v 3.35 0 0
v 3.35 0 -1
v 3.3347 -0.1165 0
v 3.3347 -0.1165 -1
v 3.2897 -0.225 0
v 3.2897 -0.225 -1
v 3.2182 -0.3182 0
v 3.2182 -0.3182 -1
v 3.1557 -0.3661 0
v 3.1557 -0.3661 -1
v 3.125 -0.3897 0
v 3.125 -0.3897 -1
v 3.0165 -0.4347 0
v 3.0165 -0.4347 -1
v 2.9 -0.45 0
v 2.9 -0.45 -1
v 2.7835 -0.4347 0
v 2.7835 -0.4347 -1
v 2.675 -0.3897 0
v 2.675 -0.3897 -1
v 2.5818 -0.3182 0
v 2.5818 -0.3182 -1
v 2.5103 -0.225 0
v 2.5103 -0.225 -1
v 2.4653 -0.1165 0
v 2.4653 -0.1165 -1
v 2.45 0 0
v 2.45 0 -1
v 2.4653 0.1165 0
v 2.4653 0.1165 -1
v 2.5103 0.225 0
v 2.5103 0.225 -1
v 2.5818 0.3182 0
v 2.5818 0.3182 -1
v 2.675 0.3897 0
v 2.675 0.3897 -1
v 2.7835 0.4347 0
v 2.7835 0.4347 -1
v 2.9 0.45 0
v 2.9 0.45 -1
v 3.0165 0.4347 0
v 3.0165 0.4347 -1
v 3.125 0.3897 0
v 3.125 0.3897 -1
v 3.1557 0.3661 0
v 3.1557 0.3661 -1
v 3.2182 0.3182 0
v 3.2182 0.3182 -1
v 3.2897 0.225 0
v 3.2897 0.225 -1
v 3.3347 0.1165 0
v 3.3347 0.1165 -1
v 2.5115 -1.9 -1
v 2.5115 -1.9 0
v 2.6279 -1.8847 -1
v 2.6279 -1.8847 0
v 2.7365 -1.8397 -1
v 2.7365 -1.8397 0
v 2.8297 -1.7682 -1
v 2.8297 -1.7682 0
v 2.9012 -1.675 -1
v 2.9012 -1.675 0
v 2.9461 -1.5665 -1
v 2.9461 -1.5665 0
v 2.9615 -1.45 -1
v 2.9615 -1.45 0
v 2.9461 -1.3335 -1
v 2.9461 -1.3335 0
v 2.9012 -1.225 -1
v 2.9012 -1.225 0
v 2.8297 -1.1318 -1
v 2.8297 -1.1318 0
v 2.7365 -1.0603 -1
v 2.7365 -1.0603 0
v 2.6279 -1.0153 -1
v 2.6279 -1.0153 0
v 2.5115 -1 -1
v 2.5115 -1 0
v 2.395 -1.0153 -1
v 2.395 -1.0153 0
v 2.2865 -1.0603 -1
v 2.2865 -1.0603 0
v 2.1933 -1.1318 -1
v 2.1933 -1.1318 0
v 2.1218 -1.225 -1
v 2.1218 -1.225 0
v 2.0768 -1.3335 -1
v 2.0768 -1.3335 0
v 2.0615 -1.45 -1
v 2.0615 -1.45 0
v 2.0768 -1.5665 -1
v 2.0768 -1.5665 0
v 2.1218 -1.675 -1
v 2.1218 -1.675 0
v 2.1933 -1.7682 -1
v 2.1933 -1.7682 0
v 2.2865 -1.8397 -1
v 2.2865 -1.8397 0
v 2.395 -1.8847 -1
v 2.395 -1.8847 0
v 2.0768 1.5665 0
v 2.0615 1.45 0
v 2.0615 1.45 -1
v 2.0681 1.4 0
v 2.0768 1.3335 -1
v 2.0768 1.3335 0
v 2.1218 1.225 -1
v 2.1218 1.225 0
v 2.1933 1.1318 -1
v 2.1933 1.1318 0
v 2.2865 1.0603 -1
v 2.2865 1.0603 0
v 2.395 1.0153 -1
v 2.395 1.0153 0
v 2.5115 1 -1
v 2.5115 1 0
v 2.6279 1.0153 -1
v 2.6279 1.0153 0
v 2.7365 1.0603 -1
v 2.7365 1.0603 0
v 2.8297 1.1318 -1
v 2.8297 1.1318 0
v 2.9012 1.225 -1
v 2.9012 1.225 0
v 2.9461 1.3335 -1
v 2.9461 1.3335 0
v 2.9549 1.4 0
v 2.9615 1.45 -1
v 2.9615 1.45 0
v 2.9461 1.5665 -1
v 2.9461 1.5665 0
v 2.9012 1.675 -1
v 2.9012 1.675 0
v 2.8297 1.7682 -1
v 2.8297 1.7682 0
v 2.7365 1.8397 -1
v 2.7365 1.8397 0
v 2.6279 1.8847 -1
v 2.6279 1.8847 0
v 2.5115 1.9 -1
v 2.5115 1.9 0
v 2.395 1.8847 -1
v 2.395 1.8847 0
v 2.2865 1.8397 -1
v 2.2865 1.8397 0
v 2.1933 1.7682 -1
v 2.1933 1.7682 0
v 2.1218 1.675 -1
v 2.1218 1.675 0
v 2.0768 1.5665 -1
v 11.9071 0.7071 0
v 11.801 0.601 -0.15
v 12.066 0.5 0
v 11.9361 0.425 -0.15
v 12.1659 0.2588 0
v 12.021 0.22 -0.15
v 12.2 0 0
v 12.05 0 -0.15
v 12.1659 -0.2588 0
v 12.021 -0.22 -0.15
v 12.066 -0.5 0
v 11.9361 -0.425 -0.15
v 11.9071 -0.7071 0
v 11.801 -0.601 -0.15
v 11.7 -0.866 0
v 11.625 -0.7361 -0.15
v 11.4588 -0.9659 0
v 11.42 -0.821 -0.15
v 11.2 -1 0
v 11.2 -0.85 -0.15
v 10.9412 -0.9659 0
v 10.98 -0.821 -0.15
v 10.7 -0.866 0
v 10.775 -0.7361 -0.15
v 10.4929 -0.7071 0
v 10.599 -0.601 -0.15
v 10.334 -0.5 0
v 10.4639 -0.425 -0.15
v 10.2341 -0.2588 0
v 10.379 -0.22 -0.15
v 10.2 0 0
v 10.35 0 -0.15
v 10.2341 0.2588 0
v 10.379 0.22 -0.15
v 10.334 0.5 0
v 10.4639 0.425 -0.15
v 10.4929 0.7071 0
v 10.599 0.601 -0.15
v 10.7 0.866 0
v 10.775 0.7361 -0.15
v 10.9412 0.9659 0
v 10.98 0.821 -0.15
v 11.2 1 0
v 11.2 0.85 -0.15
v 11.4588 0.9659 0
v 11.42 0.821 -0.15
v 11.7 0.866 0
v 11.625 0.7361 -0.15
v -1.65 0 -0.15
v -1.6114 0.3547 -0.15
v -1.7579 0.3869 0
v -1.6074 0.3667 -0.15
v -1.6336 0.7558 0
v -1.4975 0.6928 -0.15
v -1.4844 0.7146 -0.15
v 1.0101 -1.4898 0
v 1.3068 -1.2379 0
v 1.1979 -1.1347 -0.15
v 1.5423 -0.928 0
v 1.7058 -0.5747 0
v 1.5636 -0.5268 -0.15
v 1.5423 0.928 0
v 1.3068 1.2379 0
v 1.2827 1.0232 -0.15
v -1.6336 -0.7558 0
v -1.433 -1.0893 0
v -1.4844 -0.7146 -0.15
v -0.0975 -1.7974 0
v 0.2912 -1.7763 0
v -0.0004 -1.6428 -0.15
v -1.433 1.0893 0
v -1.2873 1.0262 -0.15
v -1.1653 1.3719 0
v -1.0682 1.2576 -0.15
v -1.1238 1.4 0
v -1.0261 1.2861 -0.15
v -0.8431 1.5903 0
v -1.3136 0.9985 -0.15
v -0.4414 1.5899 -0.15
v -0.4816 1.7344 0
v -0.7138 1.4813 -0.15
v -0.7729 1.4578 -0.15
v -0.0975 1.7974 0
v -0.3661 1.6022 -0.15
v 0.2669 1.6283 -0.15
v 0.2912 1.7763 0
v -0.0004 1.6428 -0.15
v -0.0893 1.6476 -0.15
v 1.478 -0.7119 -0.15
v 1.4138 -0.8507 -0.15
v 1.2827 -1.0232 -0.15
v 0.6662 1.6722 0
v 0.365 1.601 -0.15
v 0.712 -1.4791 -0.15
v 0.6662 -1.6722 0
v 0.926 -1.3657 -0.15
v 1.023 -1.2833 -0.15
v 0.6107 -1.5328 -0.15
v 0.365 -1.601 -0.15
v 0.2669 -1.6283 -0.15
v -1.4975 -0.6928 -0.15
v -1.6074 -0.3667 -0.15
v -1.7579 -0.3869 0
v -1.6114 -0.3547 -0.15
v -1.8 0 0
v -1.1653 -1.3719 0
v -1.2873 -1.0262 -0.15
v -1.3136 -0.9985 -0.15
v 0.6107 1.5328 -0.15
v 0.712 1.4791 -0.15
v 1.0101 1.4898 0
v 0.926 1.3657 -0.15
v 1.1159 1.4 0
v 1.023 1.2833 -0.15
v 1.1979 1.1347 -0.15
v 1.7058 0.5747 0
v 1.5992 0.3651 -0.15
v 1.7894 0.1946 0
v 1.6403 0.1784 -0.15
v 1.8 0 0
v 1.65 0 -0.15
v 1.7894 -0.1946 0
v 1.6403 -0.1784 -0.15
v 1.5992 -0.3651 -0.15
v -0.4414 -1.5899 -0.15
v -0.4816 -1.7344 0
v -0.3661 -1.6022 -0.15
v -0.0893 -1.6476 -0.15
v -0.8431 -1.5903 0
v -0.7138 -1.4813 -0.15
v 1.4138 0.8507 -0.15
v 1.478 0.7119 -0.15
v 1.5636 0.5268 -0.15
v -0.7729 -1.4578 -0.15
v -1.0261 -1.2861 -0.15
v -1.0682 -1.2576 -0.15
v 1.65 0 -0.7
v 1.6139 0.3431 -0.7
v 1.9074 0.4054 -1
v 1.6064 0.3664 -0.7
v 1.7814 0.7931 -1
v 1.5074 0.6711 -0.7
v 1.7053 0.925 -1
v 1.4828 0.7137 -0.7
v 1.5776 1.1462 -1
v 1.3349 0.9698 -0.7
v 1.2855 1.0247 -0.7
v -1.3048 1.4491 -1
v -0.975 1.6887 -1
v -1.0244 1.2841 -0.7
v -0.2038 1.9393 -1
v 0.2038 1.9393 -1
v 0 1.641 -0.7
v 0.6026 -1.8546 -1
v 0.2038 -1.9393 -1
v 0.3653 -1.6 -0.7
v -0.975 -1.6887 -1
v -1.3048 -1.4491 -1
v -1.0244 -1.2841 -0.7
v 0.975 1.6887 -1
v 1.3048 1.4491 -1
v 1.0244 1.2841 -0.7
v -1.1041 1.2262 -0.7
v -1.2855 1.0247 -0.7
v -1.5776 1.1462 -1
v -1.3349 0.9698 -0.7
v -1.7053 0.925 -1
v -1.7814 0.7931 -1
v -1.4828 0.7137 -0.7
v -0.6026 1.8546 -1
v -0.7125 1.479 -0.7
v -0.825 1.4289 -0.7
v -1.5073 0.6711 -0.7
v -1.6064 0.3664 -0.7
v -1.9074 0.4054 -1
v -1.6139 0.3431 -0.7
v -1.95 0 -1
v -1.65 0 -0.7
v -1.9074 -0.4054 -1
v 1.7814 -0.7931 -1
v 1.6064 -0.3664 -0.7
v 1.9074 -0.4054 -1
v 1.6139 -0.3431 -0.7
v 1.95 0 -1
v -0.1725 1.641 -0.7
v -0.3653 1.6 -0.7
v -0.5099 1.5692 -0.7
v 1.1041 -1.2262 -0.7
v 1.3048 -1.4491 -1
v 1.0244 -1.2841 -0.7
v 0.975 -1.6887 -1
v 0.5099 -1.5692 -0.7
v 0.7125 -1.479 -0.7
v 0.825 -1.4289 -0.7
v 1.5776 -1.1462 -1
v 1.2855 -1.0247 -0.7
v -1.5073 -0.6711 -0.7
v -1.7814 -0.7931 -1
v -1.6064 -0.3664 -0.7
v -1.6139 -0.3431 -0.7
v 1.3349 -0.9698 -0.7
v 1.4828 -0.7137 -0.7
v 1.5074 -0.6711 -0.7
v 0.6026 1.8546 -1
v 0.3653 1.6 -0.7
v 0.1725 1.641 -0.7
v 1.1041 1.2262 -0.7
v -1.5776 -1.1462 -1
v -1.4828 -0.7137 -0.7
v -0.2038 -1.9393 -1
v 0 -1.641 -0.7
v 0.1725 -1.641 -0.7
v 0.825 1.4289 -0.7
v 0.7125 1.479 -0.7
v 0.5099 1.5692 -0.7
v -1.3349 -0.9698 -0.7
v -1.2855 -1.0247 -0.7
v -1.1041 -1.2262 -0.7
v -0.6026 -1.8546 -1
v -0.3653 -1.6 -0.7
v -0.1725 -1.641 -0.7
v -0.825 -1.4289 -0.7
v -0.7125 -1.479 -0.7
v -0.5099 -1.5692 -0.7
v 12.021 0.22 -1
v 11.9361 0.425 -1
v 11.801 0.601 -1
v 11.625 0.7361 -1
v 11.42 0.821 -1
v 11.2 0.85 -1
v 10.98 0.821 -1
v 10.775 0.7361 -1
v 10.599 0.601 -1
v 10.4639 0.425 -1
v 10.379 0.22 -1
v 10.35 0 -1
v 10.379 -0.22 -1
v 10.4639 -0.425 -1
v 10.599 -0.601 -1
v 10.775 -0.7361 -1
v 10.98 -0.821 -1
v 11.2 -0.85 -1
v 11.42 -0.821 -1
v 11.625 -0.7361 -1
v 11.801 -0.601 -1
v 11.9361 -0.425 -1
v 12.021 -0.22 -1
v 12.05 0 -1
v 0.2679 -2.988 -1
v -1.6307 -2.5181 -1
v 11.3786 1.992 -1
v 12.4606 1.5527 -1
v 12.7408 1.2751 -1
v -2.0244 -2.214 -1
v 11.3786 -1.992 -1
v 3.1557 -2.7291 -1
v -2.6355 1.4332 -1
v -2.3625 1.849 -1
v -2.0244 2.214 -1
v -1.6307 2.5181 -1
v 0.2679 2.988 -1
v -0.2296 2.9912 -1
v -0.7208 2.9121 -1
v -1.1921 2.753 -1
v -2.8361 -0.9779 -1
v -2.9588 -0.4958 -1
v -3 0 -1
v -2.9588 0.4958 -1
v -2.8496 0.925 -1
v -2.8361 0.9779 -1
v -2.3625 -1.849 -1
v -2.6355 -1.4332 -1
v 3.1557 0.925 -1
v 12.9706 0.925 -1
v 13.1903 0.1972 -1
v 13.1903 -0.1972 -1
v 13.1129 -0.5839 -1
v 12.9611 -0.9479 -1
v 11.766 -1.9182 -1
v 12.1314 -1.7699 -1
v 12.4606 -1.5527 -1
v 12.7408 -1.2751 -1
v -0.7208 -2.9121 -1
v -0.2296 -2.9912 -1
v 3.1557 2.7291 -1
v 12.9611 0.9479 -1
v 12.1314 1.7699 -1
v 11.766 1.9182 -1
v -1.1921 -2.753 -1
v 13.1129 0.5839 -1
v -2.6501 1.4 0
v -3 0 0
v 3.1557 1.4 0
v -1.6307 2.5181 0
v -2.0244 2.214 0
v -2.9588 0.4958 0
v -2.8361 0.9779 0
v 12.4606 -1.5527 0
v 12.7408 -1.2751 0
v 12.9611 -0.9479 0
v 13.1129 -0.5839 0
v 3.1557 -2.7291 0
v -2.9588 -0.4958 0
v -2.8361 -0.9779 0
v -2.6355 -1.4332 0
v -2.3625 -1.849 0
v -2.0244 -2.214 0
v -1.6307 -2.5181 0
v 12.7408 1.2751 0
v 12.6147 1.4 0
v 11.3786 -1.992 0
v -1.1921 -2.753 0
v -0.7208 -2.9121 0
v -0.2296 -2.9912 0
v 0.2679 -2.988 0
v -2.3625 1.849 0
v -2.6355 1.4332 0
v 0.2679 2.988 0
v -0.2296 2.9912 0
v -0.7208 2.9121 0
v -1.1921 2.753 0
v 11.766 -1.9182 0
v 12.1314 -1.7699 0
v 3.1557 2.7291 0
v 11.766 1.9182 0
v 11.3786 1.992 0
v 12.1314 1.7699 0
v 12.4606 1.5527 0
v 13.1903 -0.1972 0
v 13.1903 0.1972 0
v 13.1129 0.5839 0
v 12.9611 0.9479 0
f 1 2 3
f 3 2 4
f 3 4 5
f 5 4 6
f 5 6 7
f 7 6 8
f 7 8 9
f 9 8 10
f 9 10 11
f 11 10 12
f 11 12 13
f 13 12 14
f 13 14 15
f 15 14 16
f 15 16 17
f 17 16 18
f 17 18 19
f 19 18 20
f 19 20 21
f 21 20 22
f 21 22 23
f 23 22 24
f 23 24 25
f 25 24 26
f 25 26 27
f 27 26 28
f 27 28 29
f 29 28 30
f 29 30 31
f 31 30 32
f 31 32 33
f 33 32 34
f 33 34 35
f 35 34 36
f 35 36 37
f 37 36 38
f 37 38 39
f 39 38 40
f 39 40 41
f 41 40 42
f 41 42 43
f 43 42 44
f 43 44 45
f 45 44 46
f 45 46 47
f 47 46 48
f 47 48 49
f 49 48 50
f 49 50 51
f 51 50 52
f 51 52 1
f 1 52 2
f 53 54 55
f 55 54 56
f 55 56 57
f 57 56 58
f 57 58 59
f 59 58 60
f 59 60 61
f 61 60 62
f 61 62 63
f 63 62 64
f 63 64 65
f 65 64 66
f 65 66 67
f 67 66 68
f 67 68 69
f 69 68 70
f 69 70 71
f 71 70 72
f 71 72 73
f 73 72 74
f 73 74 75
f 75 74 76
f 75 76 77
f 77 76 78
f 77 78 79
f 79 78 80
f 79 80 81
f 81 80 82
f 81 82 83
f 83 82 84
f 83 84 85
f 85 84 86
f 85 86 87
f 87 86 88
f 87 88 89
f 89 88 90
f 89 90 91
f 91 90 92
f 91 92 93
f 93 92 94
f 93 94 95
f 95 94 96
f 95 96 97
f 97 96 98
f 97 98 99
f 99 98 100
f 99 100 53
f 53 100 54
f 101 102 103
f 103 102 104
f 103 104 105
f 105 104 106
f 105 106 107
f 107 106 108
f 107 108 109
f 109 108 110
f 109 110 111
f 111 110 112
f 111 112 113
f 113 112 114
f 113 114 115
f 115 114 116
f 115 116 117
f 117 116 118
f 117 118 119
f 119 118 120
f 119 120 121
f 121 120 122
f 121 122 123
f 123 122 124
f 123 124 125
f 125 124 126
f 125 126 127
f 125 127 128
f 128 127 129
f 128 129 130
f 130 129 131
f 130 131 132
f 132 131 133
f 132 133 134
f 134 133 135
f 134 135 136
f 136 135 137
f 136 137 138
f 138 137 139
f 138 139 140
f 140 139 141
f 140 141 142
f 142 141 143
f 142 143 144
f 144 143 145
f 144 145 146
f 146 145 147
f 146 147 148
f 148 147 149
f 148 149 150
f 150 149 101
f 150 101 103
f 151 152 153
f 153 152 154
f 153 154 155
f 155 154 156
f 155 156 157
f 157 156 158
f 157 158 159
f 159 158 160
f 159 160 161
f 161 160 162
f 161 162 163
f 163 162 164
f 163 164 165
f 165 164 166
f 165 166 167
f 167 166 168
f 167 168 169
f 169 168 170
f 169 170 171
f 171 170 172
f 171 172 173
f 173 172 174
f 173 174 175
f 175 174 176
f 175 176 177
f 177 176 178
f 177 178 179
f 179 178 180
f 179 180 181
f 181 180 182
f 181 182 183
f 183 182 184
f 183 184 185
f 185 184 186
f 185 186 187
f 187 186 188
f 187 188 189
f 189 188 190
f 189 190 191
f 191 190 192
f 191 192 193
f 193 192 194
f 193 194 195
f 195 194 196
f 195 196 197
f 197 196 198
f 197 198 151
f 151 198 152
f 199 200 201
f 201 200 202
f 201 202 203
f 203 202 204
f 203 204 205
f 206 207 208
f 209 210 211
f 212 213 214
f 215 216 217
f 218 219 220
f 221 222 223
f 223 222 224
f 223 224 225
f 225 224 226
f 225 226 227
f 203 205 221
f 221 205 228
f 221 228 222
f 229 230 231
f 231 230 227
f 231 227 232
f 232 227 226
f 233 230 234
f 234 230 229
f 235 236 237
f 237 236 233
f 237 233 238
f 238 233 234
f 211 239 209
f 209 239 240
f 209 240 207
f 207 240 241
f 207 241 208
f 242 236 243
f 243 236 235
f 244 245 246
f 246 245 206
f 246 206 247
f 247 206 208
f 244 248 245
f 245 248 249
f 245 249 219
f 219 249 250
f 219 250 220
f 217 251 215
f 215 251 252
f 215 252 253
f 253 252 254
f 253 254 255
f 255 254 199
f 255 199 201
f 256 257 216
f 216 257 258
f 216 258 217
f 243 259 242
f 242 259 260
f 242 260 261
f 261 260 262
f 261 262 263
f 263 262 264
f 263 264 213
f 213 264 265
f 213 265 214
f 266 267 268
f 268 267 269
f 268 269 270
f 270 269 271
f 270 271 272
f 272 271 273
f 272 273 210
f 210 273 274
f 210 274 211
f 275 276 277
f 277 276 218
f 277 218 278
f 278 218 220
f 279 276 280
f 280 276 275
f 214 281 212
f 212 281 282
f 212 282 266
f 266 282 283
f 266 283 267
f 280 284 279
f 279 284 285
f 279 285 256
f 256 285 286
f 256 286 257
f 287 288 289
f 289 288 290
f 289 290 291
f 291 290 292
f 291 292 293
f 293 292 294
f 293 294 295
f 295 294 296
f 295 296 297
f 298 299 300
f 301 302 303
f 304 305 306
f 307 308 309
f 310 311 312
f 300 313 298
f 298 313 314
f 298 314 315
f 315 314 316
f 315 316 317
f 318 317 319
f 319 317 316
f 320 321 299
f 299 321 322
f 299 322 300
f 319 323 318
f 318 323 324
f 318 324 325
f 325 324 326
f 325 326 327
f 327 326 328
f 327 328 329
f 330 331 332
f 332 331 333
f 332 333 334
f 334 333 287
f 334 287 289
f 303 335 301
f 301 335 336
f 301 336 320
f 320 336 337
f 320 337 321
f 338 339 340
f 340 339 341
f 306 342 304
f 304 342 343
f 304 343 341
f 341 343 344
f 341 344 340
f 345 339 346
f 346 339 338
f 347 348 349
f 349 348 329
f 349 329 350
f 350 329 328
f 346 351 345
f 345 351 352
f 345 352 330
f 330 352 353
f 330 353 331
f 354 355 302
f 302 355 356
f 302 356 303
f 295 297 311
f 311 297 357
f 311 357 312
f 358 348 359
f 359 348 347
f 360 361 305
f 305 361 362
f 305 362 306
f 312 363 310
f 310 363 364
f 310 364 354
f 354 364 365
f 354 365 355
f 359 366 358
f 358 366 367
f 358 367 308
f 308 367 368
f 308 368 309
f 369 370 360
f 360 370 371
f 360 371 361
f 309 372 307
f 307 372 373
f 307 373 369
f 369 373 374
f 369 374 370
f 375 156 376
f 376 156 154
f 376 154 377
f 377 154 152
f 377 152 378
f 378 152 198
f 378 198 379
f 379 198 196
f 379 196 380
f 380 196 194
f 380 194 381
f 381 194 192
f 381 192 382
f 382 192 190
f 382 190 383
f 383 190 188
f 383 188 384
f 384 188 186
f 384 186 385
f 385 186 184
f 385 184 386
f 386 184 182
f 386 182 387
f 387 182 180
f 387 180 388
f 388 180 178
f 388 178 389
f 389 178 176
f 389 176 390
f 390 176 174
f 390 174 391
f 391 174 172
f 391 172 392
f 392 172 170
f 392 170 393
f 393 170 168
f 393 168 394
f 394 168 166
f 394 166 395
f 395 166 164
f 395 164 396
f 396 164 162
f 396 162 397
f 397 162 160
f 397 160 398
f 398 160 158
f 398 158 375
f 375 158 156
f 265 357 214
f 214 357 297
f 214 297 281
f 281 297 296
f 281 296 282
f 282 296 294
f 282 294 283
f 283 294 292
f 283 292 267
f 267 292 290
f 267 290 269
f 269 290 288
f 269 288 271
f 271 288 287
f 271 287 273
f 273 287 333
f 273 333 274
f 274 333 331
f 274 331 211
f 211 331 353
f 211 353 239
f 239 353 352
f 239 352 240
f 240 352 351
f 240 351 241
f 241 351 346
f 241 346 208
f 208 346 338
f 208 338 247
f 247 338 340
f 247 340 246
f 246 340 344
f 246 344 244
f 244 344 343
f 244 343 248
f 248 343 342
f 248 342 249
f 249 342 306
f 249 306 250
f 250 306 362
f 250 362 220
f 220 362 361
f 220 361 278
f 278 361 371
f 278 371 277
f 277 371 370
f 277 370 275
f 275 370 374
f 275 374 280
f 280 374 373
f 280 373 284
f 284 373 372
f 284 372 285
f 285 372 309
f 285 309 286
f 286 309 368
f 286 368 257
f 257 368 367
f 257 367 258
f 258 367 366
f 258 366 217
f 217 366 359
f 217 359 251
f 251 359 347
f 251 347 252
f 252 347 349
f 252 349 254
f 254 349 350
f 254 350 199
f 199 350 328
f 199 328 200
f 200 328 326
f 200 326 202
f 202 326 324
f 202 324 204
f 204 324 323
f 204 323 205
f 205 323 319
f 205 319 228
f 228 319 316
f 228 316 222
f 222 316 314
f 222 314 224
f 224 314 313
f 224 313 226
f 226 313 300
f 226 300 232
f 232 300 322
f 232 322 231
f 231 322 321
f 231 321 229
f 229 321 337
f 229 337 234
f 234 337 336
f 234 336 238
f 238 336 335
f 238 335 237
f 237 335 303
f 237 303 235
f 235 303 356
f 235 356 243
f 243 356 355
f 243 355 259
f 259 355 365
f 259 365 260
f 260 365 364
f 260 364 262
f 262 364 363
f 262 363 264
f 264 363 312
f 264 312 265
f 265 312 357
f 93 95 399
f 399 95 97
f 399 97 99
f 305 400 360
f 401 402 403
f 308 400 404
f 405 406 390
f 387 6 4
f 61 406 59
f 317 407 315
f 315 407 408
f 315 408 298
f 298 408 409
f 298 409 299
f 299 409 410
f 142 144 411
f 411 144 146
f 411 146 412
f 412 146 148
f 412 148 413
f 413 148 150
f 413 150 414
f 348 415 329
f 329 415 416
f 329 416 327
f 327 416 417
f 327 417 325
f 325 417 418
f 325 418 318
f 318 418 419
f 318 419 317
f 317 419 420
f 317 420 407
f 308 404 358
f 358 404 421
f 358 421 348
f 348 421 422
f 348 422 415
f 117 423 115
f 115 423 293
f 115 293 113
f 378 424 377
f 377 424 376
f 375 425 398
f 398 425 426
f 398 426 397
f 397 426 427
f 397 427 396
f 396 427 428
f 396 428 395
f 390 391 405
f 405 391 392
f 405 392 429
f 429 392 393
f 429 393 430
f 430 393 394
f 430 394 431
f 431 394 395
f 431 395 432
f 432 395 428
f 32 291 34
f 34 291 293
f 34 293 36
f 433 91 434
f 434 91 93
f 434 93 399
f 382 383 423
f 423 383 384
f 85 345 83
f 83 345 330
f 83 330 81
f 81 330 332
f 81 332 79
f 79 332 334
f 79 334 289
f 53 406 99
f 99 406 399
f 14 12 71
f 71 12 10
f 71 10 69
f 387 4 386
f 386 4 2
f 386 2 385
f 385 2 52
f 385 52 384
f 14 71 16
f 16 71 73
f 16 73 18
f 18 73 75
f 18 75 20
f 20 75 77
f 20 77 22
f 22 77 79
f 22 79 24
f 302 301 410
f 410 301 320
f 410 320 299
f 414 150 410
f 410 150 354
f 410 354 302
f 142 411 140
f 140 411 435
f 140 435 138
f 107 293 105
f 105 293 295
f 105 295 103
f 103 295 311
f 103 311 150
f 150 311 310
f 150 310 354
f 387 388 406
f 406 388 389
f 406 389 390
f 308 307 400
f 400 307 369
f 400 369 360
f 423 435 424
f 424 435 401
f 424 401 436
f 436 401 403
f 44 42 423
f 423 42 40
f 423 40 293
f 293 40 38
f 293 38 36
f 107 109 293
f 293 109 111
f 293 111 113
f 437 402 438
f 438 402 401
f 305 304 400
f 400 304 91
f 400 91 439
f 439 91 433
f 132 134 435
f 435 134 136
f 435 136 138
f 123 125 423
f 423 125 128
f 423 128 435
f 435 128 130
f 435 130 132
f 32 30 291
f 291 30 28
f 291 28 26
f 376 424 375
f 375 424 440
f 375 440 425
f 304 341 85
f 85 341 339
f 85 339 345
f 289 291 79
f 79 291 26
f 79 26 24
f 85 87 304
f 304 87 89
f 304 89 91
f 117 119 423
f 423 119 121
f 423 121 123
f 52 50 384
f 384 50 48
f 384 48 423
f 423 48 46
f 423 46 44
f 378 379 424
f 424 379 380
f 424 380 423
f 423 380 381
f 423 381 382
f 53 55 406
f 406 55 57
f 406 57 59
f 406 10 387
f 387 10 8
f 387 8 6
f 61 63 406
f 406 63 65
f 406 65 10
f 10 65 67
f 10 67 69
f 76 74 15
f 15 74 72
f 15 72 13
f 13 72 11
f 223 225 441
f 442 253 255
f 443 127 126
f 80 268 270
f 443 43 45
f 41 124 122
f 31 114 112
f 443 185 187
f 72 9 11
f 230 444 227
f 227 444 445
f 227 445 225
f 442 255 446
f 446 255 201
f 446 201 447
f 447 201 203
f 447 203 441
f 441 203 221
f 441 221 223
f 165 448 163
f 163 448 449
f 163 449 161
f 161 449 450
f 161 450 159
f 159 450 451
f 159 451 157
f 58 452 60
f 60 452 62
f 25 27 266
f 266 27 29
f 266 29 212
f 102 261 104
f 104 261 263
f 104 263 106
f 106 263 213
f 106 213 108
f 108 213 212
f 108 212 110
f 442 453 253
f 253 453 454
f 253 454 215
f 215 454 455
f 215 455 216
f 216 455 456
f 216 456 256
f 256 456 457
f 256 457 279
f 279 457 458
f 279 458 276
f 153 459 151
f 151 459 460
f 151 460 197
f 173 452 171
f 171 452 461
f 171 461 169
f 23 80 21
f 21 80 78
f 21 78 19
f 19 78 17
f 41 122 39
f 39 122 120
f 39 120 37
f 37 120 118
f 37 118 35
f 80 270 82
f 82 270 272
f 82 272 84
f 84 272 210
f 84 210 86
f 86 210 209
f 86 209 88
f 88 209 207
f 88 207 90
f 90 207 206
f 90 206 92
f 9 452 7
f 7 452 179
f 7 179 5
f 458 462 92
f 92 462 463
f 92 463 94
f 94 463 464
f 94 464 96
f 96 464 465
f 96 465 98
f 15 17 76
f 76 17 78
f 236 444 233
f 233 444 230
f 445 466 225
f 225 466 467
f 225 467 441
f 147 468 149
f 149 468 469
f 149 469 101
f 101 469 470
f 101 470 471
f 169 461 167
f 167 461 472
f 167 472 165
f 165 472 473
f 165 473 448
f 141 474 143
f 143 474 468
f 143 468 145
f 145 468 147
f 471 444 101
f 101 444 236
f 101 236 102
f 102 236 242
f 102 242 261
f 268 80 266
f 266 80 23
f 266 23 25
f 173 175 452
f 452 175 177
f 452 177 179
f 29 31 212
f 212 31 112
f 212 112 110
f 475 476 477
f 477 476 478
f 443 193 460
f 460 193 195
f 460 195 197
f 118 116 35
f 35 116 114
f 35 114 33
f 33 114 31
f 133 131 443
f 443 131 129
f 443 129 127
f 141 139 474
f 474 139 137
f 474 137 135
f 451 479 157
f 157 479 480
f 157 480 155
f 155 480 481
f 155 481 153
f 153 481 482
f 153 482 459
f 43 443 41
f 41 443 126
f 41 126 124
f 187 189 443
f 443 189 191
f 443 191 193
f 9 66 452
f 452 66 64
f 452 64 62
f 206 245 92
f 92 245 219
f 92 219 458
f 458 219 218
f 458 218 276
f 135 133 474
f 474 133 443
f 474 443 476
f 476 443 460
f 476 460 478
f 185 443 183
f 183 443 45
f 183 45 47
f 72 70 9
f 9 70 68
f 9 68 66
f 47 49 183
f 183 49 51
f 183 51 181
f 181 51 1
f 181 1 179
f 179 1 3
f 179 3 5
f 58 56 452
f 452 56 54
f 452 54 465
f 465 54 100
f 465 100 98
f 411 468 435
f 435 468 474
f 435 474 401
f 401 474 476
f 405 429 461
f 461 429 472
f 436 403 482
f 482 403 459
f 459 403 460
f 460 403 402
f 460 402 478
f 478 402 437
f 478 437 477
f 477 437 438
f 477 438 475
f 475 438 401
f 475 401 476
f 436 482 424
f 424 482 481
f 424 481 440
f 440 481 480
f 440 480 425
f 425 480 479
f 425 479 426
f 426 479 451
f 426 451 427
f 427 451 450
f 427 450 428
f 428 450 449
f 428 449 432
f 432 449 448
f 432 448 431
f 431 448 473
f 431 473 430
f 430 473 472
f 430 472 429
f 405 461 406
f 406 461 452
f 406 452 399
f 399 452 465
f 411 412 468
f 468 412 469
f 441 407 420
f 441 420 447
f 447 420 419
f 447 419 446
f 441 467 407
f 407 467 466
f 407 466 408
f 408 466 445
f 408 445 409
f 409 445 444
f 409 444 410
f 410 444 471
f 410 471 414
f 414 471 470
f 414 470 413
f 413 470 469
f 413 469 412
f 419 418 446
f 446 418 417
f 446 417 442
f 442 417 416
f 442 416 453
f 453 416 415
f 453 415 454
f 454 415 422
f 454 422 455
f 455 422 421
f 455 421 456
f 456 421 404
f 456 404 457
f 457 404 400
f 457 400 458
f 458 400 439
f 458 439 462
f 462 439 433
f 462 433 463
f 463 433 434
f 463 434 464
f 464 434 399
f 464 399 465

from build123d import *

# Parameters (mm, degrees)
BOSS_EXTRUDE1_DEPTH            = 1
SKETCH2_R                      = 1.65
SKETCH2_R_2                    = 0.85
CUT_EXTRUDE1_DEPTH             = 2
CHAMFER1_SIZE                  = 0.15
CHAMFER2_SIZE                  = 0.3
F_0_9_0_9_DIAMETER_HOLE1_D     = 0.9
F_0_9_0_9_DIAMETER_HOLE1_DEPTH = 1


with BuildPart() as part:
    # Sketch1 → Boss-Extrude1 (new body)
    with BuildSketch(Plane.XY):
        with BuildLine():
            Line((0.267857143, 2.988018164), (11.378571429, 1.99201211))
            ThreePointArc((11.378571429, 1.99201211), (13.2, 0), (11.378571429, -1.99201211))
            Line((11.378571429, -1.99201211), (0.267857143, -2.988018164))
            ThreePointArc((0.267857143, -2.988018164), (-3, 0), (0.267857143, 2.988018164))
        make_face()
    extrude(amount=-BOSS_EXTRUDE1_DEPTH)

    # Sketch2 → Cut-Extrude1 (cut, through all)
    with BuildSketch(Plane.XY):
        Circle(SKETCH2_R)
        with Locations((11.2, 0)):
            Circle(SKETCH2_R_2)
    extrude(amount=-CUT_EXTRUDE1_DEPTH, mode=Mode.SUBTRACT)

    # Chamfer1
    chamfer1_edges = [part.edges().sort_by_distance(p)[0] for p in [
        (-1.65, 0, 0),
        (10.35, 0, 0),
    ]]
    chamfer(chamfer1_edges, length=CHAMFER1_SIZE)

    # Chamfer2
    chamfer2_edges = [part.edges().sort_by_distance(p)[0] for p in [
        (-1.65, 0, -1),
    ]]
    chamfer(chamfer2_edges, length=CHAMFER2_SIZE)

    # Ø0.9 (0.9) Diameter Hole1
    with Locations(Plane.XY):
        with Locations((2.9, 0), (2.511473671, 1.45), (2.511473671, -1.45)):
            Hole(F_0_9_0_9_DIAMETER_HOLE1_D / 2, depth=F_0_9_0_9_DIAMETER_HOLE1_DEPTH)


solid = part.part
